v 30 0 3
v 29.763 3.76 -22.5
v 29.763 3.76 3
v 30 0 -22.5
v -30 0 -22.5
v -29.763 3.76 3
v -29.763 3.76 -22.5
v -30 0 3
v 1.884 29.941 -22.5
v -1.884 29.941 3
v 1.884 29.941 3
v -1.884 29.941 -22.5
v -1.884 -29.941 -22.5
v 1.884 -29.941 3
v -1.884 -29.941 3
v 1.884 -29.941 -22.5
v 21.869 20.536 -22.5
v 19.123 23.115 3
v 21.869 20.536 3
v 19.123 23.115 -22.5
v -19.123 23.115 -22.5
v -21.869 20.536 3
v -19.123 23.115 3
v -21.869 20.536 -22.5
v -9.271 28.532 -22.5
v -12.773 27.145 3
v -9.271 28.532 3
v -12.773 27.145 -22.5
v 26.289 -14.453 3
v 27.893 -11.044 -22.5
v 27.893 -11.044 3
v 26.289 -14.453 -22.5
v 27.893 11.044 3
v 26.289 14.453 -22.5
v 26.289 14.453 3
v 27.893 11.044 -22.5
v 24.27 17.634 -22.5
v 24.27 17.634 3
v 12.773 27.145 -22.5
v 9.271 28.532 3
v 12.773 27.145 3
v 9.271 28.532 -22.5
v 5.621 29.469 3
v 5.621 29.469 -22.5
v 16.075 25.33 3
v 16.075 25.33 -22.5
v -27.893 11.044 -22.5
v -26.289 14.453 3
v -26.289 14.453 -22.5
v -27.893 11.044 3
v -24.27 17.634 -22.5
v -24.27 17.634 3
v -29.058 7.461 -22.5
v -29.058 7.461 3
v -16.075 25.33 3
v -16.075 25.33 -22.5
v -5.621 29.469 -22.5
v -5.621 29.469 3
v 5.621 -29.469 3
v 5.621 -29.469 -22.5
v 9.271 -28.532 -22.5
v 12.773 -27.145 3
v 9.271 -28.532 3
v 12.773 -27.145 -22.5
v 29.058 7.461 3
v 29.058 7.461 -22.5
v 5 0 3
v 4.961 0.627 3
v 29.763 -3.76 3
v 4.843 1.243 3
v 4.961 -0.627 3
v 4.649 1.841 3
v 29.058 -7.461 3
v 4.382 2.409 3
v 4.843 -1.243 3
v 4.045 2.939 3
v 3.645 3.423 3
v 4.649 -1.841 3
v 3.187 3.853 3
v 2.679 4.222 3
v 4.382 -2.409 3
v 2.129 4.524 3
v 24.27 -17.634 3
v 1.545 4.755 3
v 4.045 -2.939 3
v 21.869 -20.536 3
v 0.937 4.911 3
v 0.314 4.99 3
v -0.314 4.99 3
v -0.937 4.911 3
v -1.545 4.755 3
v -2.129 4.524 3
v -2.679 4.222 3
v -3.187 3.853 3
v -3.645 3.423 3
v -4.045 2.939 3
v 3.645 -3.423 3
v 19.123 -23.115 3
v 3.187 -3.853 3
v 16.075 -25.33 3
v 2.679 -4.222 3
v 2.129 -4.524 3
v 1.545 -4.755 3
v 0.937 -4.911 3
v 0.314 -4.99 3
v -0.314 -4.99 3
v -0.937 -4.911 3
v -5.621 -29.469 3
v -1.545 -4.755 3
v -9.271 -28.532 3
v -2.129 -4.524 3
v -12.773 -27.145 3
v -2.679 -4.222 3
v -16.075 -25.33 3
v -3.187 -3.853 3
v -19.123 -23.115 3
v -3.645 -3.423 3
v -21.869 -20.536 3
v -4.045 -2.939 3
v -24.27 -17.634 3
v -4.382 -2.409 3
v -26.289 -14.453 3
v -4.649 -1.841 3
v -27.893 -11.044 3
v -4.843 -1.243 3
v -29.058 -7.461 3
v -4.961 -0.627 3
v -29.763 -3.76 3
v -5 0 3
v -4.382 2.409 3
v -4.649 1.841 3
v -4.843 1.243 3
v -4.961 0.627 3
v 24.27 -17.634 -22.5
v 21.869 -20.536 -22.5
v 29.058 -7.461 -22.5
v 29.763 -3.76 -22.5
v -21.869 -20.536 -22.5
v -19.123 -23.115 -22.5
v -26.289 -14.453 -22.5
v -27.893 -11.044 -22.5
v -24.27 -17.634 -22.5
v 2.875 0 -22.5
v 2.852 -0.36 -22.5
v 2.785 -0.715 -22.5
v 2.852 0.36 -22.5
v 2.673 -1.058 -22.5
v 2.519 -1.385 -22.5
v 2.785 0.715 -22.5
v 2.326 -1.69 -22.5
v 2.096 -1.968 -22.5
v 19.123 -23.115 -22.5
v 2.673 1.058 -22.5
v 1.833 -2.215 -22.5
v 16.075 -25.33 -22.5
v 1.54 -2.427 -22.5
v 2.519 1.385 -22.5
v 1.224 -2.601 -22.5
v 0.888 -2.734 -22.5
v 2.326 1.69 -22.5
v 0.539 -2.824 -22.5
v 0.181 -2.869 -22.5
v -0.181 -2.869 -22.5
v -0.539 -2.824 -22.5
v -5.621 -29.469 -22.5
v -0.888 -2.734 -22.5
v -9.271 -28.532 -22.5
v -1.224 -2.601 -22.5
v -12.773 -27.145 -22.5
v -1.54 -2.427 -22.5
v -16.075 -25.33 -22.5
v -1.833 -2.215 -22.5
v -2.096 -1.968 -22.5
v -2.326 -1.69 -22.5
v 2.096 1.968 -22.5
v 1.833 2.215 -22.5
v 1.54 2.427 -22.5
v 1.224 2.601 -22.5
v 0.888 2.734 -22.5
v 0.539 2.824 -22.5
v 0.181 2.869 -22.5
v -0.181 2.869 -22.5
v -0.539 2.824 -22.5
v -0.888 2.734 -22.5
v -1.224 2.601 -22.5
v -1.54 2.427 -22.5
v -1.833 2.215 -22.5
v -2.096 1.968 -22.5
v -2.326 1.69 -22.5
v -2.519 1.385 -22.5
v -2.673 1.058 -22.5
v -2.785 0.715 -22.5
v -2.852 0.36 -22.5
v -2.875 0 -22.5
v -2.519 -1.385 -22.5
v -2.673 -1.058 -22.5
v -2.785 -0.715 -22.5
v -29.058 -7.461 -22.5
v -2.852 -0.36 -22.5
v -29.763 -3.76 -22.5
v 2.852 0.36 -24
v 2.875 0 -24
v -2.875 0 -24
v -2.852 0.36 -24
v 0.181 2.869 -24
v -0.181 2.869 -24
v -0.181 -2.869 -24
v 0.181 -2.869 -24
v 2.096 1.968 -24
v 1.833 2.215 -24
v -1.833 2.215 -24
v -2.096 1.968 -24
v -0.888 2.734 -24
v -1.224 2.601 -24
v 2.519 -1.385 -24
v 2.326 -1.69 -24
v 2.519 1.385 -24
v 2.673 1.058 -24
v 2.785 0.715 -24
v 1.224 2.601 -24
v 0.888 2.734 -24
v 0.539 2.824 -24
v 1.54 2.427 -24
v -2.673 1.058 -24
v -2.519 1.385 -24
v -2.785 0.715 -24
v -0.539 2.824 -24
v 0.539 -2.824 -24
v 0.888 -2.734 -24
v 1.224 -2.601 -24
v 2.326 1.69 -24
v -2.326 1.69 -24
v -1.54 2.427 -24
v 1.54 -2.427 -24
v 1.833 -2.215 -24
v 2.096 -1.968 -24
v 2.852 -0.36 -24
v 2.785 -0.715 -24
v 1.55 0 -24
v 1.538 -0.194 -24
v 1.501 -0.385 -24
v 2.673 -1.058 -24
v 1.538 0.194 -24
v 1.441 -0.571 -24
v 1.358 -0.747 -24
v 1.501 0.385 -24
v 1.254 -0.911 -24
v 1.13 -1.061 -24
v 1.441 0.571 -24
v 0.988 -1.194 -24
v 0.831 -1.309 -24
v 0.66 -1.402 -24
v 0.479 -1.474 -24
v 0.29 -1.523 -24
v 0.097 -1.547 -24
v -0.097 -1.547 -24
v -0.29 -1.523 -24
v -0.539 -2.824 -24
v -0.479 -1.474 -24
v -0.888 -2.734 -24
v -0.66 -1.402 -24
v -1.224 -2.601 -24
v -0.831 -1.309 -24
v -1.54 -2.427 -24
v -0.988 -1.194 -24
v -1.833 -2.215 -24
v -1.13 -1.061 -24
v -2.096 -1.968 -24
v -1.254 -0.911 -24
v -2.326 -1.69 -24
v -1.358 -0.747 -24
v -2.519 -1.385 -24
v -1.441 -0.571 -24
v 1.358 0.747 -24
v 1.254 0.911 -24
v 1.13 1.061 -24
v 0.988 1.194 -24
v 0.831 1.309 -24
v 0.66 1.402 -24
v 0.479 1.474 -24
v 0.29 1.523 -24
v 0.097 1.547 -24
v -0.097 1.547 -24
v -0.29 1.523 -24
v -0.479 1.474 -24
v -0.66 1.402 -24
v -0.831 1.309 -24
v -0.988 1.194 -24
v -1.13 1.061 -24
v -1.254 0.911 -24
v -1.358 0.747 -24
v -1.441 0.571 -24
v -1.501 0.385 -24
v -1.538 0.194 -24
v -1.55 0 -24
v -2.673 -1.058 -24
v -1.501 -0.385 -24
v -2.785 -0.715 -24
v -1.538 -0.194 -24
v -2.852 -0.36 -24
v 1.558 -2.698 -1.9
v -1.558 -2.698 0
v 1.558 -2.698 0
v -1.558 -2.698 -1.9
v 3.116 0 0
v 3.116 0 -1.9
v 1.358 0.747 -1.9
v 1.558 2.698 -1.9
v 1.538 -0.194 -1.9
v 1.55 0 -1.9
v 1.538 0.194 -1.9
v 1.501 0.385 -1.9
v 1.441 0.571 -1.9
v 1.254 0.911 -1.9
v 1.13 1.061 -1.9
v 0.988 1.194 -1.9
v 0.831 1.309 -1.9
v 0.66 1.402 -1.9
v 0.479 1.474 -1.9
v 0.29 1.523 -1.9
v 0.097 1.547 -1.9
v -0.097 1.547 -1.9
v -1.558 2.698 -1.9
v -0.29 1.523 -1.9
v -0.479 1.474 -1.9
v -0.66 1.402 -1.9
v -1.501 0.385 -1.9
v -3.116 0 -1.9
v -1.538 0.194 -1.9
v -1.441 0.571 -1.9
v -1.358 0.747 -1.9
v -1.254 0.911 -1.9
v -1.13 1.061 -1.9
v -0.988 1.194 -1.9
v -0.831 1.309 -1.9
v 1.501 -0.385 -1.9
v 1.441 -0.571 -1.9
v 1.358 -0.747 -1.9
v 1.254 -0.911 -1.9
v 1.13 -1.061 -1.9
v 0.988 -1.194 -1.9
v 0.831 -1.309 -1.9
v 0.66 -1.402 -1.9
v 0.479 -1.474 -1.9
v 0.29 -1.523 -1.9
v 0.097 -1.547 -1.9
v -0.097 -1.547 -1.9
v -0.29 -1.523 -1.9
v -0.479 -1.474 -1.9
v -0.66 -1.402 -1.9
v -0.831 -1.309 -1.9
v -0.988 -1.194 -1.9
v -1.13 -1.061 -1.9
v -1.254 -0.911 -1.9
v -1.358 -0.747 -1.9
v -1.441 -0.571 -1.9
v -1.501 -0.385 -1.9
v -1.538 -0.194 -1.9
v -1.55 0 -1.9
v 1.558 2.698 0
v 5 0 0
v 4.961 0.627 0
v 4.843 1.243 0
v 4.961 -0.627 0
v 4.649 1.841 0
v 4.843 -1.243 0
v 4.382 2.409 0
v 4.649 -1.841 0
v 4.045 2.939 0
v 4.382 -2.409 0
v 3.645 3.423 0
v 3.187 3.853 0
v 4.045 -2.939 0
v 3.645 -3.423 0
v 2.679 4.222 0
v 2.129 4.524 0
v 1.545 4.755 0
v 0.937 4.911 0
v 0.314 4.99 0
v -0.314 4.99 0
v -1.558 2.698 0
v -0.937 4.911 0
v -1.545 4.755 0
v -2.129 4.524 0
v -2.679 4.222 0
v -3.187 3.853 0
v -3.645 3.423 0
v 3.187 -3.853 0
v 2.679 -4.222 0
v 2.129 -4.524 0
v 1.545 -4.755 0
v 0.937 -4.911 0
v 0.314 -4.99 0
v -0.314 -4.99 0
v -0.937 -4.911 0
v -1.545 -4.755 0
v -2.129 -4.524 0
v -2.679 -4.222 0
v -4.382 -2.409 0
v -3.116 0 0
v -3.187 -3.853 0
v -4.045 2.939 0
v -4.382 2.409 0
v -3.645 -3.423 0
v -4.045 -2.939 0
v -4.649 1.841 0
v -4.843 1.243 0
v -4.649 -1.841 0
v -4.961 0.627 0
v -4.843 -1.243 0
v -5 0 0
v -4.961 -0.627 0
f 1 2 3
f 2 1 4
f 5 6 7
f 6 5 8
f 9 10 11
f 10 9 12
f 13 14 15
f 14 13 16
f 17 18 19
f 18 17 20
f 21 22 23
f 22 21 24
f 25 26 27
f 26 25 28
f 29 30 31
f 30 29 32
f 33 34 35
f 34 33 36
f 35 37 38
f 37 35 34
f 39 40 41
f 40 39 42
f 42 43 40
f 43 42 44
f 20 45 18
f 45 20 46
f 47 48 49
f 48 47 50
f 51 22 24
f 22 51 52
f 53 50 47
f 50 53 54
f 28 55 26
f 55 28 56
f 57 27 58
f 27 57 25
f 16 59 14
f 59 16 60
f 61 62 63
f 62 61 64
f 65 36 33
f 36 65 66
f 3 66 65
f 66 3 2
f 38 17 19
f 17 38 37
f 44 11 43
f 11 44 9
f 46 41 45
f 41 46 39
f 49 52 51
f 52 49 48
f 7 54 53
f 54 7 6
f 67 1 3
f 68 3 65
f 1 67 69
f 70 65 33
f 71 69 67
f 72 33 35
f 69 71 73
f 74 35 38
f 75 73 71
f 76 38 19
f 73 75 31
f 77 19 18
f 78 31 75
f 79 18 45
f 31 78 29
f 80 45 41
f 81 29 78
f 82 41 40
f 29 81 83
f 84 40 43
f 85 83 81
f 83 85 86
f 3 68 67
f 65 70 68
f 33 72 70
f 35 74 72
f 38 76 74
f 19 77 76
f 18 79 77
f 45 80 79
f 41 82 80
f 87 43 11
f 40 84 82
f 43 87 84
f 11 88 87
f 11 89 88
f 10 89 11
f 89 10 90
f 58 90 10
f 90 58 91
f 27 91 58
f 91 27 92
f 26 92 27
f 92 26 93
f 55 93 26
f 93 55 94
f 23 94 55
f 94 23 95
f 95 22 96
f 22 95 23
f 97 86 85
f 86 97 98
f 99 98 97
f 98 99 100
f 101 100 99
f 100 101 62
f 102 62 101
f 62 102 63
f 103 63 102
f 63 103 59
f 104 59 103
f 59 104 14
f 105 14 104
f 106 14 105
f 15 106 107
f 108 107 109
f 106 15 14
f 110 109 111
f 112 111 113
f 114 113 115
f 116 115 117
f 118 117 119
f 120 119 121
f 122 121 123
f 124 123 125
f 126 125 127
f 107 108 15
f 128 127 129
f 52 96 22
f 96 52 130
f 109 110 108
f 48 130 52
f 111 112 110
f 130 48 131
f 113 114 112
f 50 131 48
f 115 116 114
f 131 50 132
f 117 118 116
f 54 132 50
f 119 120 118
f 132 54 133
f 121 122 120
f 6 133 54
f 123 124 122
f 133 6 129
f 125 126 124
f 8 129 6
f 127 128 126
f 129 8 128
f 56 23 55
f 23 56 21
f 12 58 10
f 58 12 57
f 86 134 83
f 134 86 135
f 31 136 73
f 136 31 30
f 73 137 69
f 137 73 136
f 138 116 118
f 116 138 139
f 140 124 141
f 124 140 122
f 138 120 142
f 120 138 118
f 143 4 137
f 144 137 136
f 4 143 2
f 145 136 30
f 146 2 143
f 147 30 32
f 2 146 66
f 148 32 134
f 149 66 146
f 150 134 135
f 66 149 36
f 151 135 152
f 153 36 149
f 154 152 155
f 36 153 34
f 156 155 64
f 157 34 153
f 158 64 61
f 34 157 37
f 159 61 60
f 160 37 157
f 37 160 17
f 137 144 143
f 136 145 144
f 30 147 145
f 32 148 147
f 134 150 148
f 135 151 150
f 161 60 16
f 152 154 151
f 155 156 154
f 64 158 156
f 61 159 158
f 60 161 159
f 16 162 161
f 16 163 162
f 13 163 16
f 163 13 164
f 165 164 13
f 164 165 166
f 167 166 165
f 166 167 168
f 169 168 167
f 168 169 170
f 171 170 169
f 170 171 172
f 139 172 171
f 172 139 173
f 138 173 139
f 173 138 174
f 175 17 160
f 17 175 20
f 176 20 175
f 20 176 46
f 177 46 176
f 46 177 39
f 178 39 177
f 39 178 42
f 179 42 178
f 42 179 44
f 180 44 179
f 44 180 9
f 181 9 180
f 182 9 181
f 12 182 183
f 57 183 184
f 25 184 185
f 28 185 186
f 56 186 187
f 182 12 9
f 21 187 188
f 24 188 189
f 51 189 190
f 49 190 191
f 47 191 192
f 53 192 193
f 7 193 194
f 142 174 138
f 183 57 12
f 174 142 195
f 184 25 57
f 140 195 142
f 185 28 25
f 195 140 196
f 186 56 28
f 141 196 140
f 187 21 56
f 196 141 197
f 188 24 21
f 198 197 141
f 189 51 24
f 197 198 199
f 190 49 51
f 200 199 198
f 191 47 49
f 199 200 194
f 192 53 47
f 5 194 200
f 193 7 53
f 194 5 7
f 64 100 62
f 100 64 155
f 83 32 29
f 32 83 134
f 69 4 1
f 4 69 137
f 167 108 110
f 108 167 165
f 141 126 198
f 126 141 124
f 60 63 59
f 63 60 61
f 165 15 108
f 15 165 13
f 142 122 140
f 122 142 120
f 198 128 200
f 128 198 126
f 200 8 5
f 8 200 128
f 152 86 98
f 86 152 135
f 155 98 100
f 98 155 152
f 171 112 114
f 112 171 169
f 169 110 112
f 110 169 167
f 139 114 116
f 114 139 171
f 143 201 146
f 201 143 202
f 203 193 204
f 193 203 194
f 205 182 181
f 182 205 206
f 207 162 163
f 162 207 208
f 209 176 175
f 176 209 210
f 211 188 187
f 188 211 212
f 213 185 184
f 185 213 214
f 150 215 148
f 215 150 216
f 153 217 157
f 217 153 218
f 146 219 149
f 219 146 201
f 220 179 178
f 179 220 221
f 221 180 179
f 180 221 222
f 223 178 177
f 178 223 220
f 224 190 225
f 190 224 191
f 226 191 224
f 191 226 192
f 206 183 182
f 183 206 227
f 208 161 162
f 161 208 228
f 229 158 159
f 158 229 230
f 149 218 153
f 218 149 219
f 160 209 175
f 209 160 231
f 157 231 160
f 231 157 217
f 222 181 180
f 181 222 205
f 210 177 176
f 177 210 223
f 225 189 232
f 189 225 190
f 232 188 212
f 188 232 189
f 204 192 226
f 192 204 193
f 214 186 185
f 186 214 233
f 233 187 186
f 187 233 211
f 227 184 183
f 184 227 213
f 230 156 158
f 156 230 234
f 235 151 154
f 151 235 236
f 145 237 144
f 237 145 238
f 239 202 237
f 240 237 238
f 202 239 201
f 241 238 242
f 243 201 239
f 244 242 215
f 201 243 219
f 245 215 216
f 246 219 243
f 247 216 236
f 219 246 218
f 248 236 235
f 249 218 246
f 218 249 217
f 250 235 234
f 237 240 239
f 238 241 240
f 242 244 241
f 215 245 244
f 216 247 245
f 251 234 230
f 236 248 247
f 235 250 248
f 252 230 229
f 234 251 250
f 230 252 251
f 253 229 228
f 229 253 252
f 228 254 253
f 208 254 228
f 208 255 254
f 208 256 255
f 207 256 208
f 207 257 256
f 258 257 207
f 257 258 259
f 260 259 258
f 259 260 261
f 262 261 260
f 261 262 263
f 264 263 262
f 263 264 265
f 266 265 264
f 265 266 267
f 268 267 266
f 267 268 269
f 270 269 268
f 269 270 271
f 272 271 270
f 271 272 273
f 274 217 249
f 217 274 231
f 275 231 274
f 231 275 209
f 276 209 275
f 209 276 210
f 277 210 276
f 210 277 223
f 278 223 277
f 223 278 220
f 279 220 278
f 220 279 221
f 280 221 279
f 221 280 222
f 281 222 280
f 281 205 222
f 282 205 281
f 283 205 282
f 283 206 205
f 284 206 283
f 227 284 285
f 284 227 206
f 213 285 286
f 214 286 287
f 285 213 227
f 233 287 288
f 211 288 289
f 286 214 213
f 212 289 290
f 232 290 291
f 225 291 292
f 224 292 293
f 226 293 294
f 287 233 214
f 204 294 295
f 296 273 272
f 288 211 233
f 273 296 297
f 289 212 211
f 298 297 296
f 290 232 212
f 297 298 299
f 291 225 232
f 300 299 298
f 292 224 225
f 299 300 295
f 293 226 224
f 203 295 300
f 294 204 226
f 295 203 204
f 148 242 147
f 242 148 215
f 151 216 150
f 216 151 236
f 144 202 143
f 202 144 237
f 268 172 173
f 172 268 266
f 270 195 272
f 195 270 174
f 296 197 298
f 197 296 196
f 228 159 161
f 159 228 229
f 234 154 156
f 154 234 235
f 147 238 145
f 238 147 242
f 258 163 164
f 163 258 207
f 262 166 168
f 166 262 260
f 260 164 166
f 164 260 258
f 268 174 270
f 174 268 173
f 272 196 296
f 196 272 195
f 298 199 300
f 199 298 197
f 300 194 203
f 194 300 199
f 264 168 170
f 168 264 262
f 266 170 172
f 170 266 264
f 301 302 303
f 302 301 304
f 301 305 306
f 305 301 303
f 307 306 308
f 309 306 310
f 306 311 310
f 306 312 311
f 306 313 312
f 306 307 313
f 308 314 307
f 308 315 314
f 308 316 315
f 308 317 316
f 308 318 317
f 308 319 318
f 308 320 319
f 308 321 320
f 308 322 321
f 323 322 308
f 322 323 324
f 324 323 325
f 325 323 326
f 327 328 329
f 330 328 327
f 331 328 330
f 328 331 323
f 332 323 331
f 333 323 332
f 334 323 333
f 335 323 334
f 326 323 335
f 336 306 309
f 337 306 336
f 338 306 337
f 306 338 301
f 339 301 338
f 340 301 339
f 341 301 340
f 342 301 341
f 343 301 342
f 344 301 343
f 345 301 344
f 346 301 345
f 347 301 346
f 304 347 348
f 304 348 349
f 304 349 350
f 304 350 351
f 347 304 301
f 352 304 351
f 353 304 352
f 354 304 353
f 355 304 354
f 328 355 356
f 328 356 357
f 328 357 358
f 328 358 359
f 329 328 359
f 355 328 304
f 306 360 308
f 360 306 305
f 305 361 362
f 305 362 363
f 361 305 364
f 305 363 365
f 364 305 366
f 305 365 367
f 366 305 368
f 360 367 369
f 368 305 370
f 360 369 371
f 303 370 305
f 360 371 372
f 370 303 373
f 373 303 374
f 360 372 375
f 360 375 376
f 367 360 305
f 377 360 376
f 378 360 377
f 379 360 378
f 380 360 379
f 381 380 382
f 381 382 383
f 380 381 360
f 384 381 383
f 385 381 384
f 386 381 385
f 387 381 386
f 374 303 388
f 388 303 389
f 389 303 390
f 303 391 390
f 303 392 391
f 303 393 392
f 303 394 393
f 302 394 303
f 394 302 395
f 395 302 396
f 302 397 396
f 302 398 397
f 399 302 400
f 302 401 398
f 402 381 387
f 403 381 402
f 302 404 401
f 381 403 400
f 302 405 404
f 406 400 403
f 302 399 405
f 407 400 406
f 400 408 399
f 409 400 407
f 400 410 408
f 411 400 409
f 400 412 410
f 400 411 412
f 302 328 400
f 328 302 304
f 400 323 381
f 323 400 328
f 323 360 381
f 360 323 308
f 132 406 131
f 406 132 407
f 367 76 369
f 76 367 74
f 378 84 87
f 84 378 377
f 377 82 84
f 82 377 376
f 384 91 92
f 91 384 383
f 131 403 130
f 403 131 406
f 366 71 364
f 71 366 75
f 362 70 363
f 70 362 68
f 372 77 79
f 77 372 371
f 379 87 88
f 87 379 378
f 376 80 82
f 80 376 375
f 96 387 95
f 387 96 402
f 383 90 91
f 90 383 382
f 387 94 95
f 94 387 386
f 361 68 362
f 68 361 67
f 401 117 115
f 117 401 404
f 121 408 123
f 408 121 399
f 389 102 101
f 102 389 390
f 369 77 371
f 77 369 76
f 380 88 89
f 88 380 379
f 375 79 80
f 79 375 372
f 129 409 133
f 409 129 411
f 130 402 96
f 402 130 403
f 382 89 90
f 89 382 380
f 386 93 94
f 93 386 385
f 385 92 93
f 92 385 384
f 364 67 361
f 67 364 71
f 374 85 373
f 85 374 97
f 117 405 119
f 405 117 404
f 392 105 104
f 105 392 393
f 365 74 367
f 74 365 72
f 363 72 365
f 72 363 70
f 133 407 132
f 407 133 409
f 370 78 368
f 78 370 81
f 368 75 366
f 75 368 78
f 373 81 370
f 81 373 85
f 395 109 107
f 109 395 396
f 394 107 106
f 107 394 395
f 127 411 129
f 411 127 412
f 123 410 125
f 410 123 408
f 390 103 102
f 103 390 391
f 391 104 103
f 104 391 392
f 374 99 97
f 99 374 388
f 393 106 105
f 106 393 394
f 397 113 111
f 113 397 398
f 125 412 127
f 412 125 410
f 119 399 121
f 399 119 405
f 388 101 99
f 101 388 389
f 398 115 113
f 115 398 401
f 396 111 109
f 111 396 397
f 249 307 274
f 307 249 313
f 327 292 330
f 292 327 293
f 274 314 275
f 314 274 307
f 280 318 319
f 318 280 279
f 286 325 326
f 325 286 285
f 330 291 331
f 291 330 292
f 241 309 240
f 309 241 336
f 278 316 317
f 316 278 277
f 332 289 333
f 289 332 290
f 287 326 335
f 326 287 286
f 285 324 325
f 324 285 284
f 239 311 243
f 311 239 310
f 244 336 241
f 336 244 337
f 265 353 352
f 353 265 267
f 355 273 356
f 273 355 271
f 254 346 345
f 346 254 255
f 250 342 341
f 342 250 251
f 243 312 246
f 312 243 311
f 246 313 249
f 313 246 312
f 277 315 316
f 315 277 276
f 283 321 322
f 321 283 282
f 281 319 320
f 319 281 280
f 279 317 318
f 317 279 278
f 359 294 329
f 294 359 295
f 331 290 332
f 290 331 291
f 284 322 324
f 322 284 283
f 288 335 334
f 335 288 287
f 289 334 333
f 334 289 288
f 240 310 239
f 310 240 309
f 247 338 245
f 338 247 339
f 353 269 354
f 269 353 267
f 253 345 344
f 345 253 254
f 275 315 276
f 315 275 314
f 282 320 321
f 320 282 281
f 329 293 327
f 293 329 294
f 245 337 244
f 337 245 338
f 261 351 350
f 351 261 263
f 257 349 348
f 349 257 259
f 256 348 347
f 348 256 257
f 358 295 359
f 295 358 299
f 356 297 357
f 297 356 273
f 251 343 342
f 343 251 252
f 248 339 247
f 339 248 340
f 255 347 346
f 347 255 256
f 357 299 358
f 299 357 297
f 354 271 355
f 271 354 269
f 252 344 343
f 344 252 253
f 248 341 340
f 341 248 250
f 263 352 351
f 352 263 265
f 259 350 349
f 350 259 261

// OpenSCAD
$fn = 50;

difference() {
	union() {
		translate(v = [0, 0, -22.5]) {
			cylinder(h = 25.5, r = 30.0);
		}
		#translate(v = [0, 0, -24.0]) {
			cylinder(h = 24, r = 2.875);
		}
	}
	union() {
		translate(v = [0, 0, 0]) {
			rotate(a = [0, 0, 0]) {
				difference() {
					union() {
						translate(v = [0, 0, -1.9]) {
							linear_extrude(height = 1.9) {
								polygon(points = [[3.1158, 0.0], [1.5579000000000005, 2.698361953111554], [-1.5578999999999994, 2.6983619531115544], [-3.1158, 3.815754496783323e-16], [-1.5579000000000014, -2.6983619531115535], [1.557899999999998, -2.6983619531115552]]);
							}
						}
					}
					union();
				}
			}
		}
		#cylinder(h = 3, r = 5.0);
		#translate(v = [0, 0, -100.0]) {
			cylinder(h = 200, r = 1.55);
		}
	}
}
